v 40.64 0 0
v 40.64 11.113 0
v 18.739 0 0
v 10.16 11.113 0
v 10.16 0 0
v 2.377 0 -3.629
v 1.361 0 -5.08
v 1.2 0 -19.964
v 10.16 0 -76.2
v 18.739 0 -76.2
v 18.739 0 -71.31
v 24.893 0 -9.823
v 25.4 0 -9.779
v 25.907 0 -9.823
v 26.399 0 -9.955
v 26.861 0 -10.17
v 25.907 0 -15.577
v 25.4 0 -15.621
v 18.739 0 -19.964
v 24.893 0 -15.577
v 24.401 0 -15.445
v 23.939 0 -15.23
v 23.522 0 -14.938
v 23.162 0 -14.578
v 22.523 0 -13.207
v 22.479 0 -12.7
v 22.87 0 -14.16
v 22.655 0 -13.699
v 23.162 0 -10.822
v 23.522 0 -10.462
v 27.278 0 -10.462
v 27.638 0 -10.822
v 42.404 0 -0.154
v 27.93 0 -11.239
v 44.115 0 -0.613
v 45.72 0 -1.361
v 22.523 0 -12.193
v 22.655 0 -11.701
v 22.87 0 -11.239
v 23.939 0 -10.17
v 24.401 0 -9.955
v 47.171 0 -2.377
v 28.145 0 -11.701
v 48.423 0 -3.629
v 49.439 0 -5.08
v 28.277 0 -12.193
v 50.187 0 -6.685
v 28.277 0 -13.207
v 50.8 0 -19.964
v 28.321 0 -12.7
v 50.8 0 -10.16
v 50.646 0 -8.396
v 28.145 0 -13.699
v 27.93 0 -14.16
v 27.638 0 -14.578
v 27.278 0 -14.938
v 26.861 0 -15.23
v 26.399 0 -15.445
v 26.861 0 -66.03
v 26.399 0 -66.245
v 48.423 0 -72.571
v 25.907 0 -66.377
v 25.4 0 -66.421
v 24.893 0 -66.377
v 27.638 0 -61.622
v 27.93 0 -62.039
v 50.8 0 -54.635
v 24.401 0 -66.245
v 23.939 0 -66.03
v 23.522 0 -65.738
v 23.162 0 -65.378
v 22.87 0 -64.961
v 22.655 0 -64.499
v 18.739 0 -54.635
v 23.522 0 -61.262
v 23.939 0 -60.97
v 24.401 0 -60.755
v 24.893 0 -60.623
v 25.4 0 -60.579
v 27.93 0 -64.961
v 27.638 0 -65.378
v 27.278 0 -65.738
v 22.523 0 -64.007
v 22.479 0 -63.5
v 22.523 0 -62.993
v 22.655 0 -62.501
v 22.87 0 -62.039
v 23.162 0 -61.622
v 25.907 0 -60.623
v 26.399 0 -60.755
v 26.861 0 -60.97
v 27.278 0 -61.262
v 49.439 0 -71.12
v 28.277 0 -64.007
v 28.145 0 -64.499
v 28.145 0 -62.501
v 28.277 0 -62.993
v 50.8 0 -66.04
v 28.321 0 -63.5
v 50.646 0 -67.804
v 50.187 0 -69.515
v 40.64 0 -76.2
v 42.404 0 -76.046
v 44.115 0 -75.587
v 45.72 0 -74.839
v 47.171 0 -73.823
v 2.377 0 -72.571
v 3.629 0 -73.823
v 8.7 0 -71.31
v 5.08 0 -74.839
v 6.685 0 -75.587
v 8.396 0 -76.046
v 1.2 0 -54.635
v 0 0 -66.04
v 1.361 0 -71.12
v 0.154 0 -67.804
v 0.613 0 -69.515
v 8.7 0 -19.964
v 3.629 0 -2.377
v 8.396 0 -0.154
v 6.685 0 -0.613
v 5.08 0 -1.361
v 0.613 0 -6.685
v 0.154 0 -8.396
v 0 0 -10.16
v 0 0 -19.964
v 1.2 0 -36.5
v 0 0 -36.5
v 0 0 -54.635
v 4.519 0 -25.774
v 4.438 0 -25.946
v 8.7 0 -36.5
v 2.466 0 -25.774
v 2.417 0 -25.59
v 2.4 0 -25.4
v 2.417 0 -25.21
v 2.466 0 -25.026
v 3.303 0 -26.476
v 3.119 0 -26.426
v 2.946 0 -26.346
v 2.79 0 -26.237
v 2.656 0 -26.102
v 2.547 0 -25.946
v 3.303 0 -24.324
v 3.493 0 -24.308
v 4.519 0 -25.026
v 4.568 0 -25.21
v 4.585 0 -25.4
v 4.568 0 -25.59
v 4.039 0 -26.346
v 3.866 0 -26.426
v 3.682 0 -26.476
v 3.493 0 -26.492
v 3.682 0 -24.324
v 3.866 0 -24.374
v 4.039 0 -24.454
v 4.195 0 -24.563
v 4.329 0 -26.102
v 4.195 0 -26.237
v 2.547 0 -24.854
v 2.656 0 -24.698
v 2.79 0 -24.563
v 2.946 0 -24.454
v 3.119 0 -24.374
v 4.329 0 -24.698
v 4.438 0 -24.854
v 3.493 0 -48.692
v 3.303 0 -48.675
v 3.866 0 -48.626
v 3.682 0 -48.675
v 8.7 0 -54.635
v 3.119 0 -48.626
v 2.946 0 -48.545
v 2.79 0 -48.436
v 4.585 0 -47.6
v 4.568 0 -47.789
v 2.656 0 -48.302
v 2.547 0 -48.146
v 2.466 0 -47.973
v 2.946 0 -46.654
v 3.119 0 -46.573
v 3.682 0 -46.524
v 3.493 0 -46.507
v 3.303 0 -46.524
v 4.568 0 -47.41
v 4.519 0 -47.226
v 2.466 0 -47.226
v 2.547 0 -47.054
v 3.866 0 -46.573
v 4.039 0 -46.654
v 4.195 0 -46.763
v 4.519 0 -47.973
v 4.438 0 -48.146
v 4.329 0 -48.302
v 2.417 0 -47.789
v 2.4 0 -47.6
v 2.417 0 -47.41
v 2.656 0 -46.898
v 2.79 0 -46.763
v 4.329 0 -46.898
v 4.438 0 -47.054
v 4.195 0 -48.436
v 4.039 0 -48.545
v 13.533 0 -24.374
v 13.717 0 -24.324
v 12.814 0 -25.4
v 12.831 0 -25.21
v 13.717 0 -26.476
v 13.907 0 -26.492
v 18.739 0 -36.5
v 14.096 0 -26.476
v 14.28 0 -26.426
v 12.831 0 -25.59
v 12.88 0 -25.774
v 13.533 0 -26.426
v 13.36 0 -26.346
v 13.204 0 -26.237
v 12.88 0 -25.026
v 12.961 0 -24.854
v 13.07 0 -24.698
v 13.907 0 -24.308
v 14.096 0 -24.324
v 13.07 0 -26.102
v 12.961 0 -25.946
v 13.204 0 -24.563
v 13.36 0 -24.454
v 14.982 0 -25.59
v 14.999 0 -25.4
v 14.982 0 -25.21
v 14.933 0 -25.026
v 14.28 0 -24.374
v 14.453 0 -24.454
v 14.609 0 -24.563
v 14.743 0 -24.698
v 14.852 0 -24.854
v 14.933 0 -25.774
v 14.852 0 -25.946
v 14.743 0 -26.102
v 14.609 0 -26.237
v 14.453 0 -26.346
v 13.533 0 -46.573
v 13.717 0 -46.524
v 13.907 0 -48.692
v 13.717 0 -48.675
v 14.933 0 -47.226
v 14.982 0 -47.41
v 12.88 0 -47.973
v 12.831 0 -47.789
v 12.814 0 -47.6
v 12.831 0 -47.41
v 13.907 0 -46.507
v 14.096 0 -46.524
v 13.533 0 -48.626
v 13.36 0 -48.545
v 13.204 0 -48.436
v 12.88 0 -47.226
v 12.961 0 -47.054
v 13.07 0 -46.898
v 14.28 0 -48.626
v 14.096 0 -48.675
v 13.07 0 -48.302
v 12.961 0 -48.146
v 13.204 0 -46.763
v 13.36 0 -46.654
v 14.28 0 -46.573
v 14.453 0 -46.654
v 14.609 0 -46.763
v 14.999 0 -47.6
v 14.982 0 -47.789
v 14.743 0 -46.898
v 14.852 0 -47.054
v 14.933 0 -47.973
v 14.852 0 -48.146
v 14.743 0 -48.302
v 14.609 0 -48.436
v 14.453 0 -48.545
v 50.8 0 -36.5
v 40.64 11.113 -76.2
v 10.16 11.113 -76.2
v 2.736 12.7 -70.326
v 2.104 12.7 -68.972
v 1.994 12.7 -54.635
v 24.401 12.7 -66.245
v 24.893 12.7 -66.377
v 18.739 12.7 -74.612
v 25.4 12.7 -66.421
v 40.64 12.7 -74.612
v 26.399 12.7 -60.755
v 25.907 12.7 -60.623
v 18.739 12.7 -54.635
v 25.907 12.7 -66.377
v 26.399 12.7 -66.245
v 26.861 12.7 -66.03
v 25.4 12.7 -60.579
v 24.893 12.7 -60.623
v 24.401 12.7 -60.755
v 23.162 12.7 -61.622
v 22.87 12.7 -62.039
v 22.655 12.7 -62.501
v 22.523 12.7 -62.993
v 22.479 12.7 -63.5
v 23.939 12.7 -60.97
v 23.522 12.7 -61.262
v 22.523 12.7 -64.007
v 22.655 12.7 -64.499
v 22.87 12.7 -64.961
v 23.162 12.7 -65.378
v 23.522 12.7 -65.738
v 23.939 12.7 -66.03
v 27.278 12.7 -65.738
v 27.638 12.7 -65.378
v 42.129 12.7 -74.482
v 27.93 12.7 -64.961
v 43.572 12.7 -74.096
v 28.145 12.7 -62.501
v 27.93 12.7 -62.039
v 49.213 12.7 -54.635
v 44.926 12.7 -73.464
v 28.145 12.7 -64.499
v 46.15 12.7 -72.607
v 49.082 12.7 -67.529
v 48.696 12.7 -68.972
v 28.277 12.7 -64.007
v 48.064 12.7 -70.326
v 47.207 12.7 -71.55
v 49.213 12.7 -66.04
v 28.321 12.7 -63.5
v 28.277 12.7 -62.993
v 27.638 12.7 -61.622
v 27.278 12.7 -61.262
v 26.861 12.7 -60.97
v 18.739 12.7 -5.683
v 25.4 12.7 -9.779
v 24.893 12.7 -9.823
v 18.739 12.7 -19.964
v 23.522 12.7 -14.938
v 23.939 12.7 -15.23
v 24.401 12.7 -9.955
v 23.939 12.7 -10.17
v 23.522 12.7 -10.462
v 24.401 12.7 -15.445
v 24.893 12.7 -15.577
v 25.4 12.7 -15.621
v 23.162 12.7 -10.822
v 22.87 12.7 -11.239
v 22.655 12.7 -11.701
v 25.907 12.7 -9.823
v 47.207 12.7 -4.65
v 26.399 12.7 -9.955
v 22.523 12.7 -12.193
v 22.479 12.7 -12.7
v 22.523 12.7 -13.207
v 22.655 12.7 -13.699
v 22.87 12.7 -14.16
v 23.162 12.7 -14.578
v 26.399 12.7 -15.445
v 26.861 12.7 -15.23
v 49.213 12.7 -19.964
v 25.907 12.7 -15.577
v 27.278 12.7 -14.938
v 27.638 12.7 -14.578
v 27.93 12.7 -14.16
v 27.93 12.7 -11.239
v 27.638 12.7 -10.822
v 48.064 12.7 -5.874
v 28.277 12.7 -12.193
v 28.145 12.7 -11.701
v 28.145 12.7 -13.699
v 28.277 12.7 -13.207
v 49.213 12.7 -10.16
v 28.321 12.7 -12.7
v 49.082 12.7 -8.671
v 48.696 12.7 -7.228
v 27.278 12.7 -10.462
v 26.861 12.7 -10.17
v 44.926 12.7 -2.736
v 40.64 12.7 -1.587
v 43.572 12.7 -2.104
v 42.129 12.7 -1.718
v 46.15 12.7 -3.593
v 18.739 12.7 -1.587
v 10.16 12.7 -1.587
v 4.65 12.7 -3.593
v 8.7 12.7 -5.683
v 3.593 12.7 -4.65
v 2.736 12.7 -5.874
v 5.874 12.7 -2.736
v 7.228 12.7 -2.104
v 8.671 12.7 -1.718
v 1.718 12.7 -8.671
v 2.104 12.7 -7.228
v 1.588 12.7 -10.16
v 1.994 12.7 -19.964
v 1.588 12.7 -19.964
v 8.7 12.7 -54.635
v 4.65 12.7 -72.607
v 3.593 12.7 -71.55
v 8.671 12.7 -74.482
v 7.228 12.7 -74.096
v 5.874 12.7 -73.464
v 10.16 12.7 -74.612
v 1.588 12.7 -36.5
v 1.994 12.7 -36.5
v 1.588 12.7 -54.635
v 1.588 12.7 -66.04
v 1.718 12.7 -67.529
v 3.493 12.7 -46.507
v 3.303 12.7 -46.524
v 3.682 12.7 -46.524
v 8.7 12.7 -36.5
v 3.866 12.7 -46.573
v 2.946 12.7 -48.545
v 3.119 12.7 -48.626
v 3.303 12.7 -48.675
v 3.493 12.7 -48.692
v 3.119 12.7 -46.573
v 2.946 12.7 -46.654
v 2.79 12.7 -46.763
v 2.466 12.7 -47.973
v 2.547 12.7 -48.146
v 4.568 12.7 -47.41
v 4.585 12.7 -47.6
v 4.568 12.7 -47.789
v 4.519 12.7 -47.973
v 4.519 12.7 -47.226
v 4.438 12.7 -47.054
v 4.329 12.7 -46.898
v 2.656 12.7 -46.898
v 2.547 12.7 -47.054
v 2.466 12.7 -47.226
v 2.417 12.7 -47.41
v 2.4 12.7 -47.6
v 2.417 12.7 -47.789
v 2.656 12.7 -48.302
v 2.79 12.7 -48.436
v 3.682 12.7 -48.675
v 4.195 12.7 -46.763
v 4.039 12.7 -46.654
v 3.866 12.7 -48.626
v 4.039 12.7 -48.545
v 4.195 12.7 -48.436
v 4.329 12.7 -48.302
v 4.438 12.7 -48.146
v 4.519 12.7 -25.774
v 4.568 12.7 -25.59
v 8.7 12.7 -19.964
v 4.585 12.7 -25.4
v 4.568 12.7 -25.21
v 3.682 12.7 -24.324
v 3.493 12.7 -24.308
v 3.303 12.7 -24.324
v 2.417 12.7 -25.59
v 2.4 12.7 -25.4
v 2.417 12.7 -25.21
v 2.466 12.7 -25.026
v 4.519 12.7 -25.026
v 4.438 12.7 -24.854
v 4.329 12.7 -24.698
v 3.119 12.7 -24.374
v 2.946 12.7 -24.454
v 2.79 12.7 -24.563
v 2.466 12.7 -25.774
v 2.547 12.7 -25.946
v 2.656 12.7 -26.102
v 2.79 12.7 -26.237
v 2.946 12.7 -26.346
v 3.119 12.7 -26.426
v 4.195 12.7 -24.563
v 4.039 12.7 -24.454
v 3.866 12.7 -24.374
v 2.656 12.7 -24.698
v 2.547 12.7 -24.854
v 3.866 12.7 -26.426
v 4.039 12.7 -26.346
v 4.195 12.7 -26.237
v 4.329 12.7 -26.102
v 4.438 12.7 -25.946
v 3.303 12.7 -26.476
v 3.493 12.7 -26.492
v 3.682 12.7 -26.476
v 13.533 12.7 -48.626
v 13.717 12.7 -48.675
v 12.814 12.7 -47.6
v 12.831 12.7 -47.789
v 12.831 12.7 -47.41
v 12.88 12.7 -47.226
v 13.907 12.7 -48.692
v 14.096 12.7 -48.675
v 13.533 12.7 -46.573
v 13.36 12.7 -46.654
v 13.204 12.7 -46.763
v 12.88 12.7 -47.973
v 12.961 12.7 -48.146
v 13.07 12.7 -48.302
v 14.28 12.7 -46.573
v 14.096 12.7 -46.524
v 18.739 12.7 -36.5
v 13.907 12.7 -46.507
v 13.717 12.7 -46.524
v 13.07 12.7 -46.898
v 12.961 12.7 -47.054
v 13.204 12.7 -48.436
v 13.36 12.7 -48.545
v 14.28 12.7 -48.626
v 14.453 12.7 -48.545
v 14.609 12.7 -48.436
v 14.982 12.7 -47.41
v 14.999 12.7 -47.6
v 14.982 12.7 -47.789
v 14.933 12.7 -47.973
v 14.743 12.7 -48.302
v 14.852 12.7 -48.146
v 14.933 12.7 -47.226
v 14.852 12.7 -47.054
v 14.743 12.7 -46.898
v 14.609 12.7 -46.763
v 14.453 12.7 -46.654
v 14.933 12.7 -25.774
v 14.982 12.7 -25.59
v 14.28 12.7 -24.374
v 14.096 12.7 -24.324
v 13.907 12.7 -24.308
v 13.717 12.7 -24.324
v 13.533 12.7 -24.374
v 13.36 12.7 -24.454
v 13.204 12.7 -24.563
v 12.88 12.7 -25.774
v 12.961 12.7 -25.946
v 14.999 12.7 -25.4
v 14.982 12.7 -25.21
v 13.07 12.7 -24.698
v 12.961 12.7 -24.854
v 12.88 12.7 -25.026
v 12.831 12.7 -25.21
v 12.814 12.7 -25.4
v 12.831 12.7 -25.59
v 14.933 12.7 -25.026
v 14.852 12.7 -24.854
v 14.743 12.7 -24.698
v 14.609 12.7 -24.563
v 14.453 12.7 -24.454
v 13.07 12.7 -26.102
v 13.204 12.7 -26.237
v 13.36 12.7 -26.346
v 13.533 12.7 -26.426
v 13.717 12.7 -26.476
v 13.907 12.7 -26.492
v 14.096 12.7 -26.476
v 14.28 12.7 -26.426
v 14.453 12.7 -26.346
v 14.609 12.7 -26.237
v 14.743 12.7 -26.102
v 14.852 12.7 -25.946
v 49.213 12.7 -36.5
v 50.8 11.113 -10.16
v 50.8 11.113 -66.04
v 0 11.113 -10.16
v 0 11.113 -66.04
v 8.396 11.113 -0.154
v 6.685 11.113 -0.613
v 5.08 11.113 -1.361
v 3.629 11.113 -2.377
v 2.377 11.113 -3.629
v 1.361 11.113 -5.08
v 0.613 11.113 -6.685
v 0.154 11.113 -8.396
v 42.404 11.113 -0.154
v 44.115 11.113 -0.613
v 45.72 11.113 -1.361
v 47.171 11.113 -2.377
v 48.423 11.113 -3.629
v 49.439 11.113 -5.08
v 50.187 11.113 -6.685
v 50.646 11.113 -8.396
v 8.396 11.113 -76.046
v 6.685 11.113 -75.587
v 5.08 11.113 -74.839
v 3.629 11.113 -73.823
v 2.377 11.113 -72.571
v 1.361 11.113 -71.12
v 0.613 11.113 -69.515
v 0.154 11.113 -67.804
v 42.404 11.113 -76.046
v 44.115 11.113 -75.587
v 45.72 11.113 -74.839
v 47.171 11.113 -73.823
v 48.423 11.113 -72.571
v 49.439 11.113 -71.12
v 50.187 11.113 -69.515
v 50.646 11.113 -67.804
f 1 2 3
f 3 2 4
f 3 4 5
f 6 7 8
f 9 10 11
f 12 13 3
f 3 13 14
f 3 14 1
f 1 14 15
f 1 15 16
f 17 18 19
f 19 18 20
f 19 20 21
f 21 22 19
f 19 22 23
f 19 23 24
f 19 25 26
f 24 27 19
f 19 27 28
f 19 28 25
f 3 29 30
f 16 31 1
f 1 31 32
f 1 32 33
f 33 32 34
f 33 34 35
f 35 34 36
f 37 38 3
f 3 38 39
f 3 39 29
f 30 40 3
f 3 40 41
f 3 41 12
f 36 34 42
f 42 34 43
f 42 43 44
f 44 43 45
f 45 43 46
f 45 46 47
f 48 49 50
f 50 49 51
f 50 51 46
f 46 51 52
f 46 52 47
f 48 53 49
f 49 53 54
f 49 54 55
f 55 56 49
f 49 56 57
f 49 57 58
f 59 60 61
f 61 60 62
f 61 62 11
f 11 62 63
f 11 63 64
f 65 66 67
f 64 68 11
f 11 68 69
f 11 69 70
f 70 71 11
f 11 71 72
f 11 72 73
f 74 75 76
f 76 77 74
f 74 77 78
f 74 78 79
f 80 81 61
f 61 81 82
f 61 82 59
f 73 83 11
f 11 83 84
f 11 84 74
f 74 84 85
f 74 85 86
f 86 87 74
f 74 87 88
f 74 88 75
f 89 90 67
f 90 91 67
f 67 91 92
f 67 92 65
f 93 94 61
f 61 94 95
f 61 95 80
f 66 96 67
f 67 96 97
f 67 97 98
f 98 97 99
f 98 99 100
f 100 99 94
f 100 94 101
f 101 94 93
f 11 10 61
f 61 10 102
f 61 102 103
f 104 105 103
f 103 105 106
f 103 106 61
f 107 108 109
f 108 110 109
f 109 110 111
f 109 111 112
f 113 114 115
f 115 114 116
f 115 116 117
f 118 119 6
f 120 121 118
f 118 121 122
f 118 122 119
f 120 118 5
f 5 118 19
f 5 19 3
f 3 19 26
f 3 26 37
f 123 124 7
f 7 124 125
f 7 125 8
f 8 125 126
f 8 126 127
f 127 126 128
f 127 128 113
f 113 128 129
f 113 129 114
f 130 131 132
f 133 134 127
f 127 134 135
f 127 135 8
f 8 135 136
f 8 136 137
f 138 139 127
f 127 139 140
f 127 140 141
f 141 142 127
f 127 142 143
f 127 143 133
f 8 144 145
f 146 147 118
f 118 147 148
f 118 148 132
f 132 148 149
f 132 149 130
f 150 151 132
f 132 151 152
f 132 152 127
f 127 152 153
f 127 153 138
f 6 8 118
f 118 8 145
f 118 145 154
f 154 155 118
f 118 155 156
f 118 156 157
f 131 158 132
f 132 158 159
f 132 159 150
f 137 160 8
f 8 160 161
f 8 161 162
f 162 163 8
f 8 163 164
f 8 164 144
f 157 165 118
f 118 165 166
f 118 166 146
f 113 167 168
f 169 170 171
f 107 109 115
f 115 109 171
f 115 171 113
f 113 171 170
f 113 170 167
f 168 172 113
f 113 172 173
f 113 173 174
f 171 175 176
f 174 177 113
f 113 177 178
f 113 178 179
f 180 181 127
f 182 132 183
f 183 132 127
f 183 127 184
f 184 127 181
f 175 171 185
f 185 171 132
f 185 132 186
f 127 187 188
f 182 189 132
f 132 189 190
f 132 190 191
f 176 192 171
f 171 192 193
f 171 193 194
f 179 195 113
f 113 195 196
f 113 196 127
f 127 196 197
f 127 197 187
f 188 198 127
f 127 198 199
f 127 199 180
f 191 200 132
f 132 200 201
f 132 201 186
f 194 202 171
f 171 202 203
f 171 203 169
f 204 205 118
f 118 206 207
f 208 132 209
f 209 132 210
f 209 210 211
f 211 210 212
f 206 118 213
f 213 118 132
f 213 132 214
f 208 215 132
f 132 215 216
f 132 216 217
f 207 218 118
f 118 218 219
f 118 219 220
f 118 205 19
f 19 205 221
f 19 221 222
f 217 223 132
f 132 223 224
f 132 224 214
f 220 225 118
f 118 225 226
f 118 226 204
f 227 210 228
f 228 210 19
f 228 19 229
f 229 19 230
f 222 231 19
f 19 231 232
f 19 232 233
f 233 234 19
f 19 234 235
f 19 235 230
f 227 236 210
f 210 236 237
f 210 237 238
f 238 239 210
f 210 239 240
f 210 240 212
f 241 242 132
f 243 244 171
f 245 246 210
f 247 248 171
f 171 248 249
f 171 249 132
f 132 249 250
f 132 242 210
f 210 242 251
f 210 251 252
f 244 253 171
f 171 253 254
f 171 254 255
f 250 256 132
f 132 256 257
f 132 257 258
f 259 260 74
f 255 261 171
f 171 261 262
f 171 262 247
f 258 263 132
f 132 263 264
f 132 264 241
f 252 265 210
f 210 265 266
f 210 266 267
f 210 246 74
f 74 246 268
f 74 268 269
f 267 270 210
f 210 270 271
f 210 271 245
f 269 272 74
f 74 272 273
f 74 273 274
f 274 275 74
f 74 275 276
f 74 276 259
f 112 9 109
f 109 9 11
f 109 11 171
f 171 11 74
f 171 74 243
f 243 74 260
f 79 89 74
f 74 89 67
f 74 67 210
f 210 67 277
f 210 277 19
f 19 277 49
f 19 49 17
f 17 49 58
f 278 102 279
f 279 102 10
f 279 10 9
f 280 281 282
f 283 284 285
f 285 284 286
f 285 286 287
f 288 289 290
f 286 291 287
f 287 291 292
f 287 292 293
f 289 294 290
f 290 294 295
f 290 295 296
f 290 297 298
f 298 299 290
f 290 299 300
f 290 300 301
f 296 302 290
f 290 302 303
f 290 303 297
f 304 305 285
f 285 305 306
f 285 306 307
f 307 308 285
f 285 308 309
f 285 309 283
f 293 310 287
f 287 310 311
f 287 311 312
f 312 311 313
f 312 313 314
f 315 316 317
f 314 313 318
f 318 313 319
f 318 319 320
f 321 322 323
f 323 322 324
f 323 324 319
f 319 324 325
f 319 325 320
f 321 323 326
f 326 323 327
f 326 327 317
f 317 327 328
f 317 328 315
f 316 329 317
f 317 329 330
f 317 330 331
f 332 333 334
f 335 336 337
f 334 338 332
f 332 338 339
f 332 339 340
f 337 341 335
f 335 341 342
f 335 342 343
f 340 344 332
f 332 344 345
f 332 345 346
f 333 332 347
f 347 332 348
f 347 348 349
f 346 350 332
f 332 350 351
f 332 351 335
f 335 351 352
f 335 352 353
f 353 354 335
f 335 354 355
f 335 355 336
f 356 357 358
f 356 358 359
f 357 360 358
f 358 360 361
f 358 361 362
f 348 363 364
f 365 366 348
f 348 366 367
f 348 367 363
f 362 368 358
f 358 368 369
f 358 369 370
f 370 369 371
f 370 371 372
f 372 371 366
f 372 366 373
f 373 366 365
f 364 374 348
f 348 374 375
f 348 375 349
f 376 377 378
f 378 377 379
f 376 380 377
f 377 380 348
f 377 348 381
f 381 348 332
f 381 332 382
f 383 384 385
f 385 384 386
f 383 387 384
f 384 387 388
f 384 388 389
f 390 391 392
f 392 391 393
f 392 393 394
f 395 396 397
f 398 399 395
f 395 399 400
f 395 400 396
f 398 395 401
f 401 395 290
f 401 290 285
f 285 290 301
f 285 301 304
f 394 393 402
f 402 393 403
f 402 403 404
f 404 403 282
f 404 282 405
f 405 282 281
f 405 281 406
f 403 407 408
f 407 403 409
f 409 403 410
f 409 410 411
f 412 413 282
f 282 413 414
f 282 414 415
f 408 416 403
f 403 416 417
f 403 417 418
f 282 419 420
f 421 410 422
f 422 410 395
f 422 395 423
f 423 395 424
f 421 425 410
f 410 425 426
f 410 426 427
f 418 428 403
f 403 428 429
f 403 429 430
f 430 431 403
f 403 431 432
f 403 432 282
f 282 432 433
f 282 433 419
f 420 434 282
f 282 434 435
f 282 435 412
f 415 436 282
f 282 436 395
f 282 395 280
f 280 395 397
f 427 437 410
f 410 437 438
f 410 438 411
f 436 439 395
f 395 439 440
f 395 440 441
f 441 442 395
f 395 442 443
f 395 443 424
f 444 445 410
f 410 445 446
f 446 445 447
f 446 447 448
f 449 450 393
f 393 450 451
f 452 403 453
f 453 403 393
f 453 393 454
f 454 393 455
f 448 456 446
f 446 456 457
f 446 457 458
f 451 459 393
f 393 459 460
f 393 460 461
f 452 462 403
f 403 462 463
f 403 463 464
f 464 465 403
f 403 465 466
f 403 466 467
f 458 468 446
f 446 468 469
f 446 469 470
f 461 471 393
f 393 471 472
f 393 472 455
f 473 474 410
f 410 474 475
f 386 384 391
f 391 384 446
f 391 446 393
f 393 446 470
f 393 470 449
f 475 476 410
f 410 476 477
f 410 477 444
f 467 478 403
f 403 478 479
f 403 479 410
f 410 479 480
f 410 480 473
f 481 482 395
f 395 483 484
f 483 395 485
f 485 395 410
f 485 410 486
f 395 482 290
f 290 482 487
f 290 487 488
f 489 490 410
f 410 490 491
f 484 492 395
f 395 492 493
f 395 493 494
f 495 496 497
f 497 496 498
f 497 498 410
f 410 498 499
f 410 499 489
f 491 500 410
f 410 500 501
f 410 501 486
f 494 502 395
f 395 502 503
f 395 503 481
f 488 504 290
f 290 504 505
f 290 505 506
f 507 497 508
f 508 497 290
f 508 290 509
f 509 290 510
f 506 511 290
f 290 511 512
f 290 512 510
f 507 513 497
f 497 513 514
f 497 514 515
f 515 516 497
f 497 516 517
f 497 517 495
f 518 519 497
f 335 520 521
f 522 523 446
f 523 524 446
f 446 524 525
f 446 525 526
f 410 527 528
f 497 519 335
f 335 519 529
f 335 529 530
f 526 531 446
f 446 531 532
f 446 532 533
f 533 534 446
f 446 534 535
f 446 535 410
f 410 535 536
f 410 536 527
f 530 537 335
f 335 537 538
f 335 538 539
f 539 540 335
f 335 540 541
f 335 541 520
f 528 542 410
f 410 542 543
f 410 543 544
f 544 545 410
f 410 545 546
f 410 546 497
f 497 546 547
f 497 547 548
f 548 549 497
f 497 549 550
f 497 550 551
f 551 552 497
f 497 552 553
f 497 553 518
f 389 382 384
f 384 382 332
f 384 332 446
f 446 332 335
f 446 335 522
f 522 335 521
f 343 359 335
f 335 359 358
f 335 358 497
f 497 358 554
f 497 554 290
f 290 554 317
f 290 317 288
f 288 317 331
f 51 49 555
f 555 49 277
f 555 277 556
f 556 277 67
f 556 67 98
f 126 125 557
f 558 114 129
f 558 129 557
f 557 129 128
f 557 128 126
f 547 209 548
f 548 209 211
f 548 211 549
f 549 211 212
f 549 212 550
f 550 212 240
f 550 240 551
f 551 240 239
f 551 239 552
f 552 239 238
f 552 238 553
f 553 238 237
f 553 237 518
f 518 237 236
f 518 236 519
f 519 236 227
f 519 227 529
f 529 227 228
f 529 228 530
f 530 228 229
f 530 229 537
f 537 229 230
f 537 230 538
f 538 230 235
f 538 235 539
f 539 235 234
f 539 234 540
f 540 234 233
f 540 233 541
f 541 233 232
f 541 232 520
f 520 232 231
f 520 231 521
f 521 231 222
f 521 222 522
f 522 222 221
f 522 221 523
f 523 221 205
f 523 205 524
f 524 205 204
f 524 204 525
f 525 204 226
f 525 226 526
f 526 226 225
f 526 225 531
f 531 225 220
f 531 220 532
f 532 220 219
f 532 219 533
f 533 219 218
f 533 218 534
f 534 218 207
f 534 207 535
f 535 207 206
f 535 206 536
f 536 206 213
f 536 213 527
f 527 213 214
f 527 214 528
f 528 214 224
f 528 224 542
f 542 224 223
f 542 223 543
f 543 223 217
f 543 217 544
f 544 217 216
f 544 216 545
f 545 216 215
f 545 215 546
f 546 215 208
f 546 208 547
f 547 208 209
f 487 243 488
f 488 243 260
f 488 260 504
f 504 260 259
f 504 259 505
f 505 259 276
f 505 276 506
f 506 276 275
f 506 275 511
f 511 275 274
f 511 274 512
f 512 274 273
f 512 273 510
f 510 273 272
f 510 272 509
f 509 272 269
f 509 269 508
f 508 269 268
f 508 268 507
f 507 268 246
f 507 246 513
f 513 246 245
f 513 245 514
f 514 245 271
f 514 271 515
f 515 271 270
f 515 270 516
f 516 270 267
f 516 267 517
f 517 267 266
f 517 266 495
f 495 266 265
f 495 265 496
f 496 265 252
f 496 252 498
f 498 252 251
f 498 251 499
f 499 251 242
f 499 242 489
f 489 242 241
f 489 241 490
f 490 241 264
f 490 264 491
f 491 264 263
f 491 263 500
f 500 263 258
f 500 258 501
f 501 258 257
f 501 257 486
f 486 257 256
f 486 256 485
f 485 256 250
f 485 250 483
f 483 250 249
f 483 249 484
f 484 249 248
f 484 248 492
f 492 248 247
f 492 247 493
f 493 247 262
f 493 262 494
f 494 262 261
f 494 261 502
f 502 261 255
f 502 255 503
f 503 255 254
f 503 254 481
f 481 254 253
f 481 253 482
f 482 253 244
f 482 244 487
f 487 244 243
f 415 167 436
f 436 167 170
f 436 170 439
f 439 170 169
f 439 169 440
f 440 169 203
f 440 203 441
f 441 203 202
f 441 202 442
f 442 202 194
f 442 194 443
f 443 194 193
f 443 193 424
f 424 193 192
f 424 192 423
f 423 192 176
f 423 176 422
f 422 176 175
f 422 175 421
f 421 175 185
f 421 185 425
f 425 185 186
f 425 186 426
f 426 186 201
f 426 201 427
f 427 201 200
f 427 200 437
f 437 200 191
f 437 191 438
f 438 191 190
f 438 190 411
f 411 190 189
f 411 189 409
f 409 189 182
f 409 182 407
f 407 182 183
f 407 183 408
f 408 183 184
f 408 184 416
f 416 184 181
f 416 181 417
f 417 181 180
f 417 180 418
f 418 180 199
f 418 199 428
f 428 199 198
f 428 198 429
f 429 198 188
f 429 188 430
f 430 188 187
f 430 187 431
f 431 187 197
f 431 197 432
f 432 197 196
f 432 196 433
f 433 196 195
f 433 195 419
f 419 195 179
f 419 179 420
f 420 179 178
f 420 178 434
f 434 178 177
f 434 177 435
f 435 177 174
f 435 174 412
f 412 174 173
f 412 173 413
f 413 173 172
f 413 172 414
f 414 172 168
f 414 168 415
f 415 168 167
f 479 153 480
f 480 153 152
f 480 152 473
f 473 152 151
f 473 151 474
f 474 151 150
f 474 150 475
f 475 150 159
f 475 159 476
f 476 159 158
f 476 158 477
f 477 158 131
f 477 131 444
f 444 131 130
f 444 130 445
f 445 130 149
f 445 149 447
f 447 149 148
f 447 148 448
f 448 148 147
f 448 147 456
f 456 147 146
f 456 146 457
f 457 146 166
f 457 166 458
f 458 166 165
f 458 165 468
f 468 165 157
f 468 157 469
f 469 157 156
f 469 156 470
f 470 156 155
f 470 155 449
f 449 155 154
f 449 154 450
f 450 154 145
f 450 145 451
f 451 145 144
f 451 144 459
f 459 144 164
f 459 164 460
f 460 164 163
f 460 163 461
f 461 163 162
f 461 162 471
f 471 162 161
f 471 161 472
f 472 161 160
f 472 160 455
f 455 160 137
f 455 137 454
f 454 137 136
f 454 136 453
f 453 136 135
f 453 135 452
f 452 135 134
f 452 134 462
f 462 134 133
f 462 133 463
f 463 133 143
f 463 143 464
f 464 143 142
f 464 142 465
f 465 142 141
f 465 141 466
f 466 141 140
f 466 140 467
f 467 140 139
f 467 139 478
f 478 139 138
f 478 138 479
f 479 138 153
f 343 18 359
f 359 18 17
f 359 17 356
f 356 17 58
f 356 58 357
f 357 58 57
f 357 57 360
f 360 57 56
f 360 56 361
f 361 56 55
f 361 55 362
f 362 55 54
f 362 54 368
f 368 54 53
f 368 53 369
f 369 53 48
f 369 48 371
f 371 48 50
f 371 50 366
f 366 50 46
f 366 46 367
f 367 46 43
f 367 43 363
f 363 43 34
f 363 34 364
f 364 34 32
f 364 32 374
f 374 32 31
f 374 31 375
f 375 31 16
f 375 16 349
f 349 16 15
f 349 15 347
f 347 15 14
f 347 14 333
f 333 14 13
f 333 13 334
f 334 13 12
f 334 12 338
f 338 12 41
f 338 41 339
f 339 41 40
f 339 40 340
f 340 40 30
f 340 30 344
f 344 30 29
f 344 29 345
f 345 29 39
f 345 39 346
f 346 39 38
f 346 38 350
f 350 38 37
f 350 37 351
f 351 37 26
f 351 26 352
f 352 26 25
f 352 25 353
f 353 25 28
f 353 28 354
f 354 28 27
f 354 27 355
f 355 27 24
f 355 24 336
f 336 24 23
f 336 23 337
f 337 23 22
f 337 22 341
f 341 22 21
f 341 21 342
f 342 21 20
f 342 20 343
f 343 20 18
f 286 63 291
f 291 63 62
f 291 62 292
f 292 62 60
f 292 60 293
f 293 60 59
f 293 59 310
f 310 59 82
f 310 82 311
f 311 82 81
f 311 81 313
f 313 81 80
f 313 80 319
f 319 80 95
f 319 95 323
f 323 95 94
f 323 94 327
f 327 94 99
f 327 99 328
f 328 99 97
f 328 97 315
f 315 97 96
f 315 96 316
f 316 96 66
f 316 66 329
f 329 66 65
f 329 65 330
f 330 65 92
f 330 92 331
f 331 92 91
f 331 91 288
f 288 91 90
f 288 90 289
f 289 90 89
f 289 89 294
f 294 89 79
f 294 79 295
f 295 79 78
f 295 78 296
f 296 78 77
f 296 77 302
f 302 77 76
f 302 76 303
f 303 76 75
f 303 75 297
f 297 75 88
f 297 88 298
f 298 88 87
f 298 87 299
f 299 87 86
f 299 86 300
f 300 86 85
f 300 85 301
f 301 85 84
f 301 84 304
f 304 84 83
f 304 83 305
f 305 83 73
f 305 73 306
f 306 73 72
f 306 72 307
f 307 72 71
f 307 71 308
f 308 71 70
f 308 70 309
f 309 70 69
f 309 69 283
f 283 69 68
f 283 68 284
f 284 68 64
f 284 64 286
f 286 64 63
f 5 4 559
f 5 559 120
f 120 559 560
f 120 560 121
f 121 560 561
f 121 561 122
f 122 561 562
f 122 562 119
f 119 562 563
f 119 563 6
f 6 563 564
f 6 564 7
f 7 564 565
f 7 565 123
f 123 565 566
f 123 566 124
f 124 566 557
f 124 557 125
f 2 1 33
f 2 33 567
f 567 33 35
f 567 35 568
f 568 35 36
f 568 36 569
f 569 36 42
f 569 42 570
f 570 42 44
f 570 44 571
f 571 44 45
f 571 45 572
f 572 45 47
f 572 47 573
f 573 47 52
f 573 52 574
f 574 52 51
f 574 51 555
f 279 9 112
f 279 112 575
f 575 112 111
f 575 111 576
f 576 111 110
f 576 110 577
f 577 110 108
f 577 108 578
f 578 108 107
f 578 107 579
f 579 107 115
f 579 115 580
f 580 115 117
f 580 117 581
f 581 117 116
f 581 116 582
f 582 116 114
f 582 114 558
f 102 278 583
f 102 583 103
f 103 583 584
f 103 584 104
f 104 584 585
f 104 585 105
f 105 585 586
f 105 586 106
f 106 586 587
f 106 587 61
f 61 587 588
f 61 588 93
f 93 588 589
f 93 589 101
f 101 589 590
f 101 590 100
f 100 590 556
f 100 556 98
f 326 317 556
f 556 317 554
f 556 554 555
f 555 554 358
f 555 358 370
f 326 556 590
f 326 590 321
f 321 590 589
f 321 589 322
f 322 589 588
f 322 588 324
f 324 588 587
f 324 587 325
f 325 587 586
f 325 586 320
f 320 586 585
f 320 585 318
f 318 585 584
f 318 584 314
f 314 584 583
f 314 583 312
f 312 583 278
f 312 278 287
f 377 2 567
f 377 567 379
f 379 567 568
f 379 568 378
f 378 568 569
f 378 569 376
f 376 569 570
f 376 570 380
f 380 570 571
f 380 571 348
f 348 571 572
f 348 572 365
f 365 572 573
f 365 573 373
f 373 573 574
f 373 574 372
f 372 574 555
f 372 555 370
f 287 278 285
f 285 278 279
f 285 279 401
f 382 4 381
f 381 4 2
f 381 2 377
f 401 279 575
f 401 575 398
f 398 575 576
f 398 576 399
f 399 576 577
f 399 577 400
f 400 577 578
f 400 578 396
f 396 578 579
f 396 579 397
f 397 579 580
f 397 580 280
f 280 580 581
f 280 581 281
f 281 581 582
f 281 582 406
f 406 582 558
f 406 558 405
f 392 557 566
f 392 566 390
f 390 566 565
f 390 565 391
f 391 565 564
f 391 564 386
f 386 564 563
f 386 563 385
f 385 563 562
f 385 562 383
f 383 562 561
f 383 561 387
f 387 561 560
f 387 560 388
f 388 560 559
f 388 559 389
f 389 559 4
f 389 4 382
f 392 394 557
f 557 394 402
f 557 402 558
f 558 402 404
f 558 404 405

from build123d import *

# Parameters (mm, degrees)
SKETCH1_W           = 76.2
SKETCH1_H           = 12.7
BOSS_EXTRUDE1_DEPTH = 50.8
SKETCH3_R           = 1.0922
SKETCH3_R_2         = 2.921
CUT_EXTRUDE2_DEPTH  = 93.457395594
FILLET1_R           = 10.16
CHAMFER1_SIZE       = 1.5875


with BuildPart() as part:
    # Sketch1 → Boss-Extrude1 (new body)
    with BuildSketch(Plane(origin=(0, 0, 0), x_dir=(0, 0, -1), z_dir=(1, 0, 0))):
        with Locations((38.1, 6.35)):
            Rectangle(SKETCH1_W, SKETCH1_H)
    extrude(amount=BOSS_EXTRUDE1_DEPTH)

    # Sketch3 → Cut-Extrude2 (cut, through all)
    with BuildSketch(Plane.XZ):
        with Locations(Location((13.9065, -25.4, 0), (0, 0, 270))):
            Circle(SKETCH3_R)
        with Locations(Location((25.4, -63.5, 0), (0, 0, 270))):
            Circle(SKETCH3_R_2)
        with Locations(Location((25.4, -12.7, 0), (0, 0, 270))):
            Circle(SKETCH3_R_2)
        with Locations(Location((3.4925, -25.4, 0), (0, 0, 270))):
            Circle(SKETCH3_R)
        with Locations(Location((3.4925, -47.5996, 0), (0, 0, 270))):
            Circle(SKETCH3_R)
        with Locations(Location((13.9065, -47.5996, 0), (0, 0, 270))):
            Circle(SKETCH3_R)
    extrude(amount=-CUT_EXTRUDE2_DEPTH, mode=Mode.SUBTRACT)

    # Fillet1
    fillet1_edges = [part.edges().sort_by_distance(p)[0] for p in [
        (50.8, 6.35, -76.2),
        (50.8, 6.35, 0),
        (0, 6.35, -76.2),
        (0, 6.35, 0),
    ]]
    fillet(fillet1_edges, radius=FILLET1_R)

    # Chamfer1
    chamfer1_edges = [part.edges().sort_by_distance(p)[0] for p in [
        (25.4, 12.7, 0),
        (0, 12.7, -38.1),
        (50.8, 12.7, -38.1),
        (25.4, 12.7, -76.2),
        (47.824204897, 12.7, -73.224204897),
        (2.975795103, 12.7, -73.224204897),
        (47.824204897, 12.7, -2.975795103),
        (2.975795103, 12.7, -2.975795103),
    ]]
    chamfer(chamfer1_edges, length=CHAMFER1_SIZE)


solid = part.part
